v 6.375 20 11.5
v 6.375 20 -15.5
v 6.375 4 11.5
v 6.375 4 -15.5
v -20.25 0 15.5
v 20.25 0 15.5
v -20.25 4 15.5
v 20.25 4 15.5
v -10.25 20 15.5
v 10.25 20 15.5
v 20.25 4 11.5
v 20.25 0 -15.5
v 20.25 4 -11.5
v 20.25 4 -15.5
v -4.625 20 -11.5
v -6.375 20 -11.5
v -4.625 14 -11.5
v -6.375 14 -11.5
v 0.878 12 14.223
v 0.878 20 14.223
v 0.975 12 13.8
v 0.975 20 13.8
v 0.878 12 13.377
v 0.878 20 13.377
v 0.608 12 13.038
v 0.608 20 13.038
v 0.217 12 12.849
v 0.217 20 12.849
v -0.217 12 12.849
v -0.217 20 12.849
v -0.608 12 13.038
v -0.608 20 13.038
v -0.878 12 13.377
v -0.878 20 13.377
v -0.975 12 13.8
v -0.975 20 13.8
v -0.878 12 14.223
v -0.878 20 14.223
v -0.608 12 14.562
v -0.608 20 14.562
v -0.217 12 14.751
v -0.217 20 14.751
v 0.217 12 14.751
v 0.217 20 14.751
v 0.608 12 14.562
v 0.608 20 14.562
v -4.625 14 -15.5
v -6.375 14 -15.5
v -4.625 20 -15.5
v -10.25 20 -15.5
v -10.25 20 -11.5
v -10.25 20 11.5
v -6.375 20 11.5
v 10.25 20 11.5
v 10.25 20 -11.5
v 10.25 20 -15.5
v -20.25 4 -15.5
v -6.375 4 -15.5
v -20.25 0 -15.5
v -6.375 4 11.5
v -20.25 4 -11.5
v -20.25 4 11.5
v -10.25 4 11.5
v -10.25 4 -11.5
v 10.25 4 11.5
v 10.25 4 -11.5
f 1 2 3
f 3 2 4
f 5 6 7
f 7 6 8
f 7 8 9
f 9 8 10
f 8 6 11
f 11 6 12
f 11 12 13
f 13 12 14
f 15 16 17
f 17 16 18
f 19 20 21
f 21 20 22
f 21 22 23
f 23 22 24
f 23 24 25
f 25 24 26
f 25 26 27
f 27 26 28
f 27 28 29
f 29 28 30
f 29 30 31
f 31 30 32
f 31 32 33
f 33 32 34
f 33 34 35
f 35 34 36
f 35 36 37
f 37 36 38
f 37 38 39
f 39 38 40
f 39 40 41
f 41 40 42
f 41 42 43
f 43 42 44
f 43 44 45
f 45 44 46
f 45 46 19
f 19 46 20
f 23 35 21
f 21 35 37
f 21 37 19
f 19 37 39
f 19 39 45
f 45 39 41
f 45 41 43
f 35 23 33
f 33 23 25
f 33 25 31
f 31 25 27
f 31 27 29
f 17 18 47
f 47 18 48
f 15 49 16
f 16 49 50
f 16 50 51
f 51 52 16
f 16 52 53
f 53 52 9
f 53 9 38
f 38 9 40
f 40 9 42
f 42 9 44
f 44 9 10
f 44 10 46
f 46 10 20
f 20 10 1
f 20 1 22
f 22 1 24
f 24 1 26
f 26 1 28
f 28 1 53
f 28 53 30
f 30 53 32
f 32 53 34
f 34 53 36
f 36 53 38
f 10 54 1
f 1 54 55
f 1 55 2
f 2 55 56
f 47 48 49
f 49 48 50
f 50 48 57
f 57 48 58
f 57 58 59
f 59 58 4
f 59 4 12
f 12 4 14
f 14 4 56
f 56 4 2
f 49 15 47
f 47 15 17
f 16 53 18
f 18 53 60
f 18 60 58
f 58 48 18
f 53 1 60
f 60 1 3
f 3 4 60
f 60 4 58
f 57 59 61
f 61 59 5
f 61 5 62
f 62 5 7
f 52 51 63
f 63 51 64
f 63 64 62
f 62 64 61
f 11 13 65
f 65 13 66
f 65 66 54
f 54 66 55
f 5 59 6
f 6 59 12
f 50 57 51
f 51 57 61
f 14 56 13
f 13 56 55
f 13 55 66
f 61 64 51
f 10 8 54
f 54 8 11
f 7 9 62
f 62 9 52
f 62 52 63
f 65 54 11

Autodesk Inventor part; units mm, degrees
ref_plane "YZ Plane" through (0, 0, 0) normal (1, 0, 0) x (0, 1, 0)
ref_plane "XZ Plane" through (0, 0, 0) normal (0, 1, 0) x (-1, 0, 0)
ref_plane "XY Plane" through (0, 0, 0) normal (0, 0, 1) x (1, 0, 0)
sketch "Sketch1" plane through (0, 0, 0) normal (0, 1, 0) x (-1, 0, 0)
  point P0 (0, 0)
sketch "Sketch2" plane through (0, 0, 0) normal (0, 1, 0) x (-1, 0, 0)
  line L0 (-10.25, -15.5) -> (10.25, -15.5)
  line L1 (10.25, -15.5) -> (10.25, 15.5)
  line L2 (10.25, 15.5) -> (-10.25, 15.5)
  line L3 (-10.25, 15.5) -> (-10.25, -15.5)
  line L4 (-10.25, -15.5) -> (10.25, 15.5) construction
  line L5 (10.25, -15.5) -> (-10.25, 15.5) construction
  point P0 (0, 0)
  dimension "d0" = 20.5
  dimension "d1" = 31
extrude "Extrusion1" add sketch "Sketch2" along normal blind 20
sketch "Sketch3" plane through (0, 20, 0) normal (0, 1, 0) x (1, 0, 0)
  line L0 (6.375, -11.5) -> (-6.375, -11.5)
  line L1 (-6.375, -11.5) -> (-6.375, 11.5)
  line L2 (-6.375, 11.5) -> (6.375, 11.5)
  line L3 (6.375, 11.5) -> (6.375, -11.5)
  line L4 (10.25, 15.5) -> (-10.25, 15.5) projected
  line L5 (10.25, -15.5) -> (10.25, 15.5) projected
  line L6 (-10.25, 15.5) -> (-10.25, -15.5) projected
  line L7 (-10.25, -15.5) -> (10.25, -15.5) projected
  point P0 (0, 0)
  dimension "d4" = 23
  dimension "d5" = 12.75
  dimension "d6" = 4
  dimension "d7" = 3.875
  dimension "d8" = 3.875
  dimension "d9" = 4
extrude "Extrusion2" cut sketch "Sketch3" against normal blind 16 contours L0 L1 L2 L3
sketch "Sketch4" plane through (10.25, 0, -15.5) normal (0, 0, -1) x (-1, 0, 0)
  line L0 (16.625, 14) -> (3.875, 14)
  line L1 (3.875, 14) -> (3.875, 4)
  line L2 (3.875, 4) -> (16.625, 4)
  line L3 (16.625, 4) -> (16.625, 14)
  line L4 (3.875, 20) -> (16.625, 20) projected
  line L5 (0, 0) -> (20.5, 0) projected
  line L6 (0, 0) -> (0, 20) projected
  line L7 (20.5, 0) -> (20.5, 20) projected
  point P0 (10.25, 0)
  dimension "d12" = 10
  dimension "d13" = 12.75
  dimension "d14" = 4
  dimension "d15" = 3.875
  dimension "d16" = 3.875
  dimension "d17" = 6
extrude "Extrusion3" cut sketch "Sketch4" against normal blind 4
sketch "Sketch5" plane through (0, 20, 0) normal (0, 1, 0) x (1, 0, 0)
  circle A0 centre (0, -13.8) radius 0.975
  line L0 (6.375, -11.5) -> (-6.375, -11.5) projected
  line L1 (10.25, -15.5) -> (10.25, 15.5) projected
  line L2 (-10.25, 15.5) -> (-10.25, -15.5) projected
  circle A1 centre (0, 13.8) radius 0.975
  line L3 (-6.375, 11.5) -> (6.375, 11.5) projected
  point P0 (0, 0)
  dimension "d20" = 1.95
  dimension "d21" = 2.3
  dimension "d22" = 10.25
  dimension "d23" = 10.25
  dimension "d24" = 1.95
  dimension "d25" = 2.3
  dimension "d26" = 10.25
  dimension "d27" = 10.25
extrude "Extrusion4" cut sketch "Sketch5" against normal blind 8
sketch "Sketch6" plane through (-10.25, 0, -15.5) normal (-1, 0, 0) x (0, 0, 1)
  line L0 (0, 4) -> (27, 4) projected
  line L1 (0, 0) -> (31, 0) projected
  line L2 (0, 4) -> (31, 4)
  line L3 (31, 4) -> (31, 0)
  line L4 (31, 0) -> (0, 0)
  line L5 (0, 0) -> (0, 4)
  point P0 (15.5, 0)
extrude "Extrusion5" add sketch "Sketch6" along normal blind 10
sketch "Sketch8" plane through (10.25, 0, 15.5) normal (1, 0, 0) x (0, 0, -1)
  line L0 (31, 4) -> (4, 4) projected
  line L1 (0, 0) -> (31, 0) projected
  line L2 (31, 4) -> (0, 4)
  line L3 (0, 4) -> (0, 0)
  line L4 (0, 0) -> (31, 0)
  line L5 (31, 0) -> (31, 4)
  point P0 (15.5, 0)
  point P1 (4, 4)
extrude "Extrusion6" add sketch "Sketch8" along normal blind 10
sketch "Sketch9" plane through (10.25, 20, -15.5) normal (0, 0, -1) x (-1, 0, 0)
  line L0 (20.5, -16) -> (20.5, 0) projected
  line L1 (20.5, 0) -> (20.5, -16)
  line L2 (30.5, -20) -> (30.5, -16) projected
  line L3 (20.5, -16) -> (30.5, -16)
  line L4 (30.5, -16) -> (20.5, 0)
  line L5 (0, -16) -> (0, 0) projected
  line L6 (0, 0) -> (0, -16)
  line L7 (0, -16) -> (-10, -16) projected
  line L8 (0, -16) -> (-10, -16)
  line L9 (-10, -16) -> (0, 0)
  point P0 (10.25, -20)
extrude "Extrusion7" add sketch "Sketch9" against normal blind 4
sketch "Sketch10" plane through (-10.25, 20, 15.5) normal (0, 0, 1) x (1, 0, 0)
  line L0 (0, 0) -> (0, -16)
  line L1 (0, -16) -> (-10, -16) projected
  line L2 (0, -16) -> (-10, -16)
  line L3 (-10, -16) -> (0, 0) projected
  line L4 (-10, -16) -> (0, 0)
  line L5 (20.5, -16) -> (20.5, 0) projected
  line L6 (20.5, 0) -> (20.5, -16)
  line L7 (20.5, -16) -> (30.5, -16) projected
  line L8 (20.5, -16) -> (30.5, -16)
  line L9 (30.5, -16) -> (20.5, 0)
  point P0 (10.25, -20)
extrude "Extrusion8" add sketch "Sketch10" against normal blind 4
sketch "Sketch11" plane through (0, 20, 0) normal (0, 1, 0) x (1, 0, 0)
  line L0 (6.375, 15.5) -> (6.375, -11.5) projected
  line L1 (-6.375, 11.5) -> (6.375, 11.5) projected
  line L2 (6.375, 15.5) -> (-4.625, 15.5)
  line L3 (-4.625, 15.5) -> (-4.625, 11.5)
  line L4 (-4.625, 11.5) -> (6.375, 11.5)
  line L5 (6.375, 11.5) -> (6.375, 15.5)
  point P0 (0, 0)
  dimension "d38" = 11
extrude "Extrusion9" cut sketch "Sketch11" against normal blind 6
properties part number "servommount1"
